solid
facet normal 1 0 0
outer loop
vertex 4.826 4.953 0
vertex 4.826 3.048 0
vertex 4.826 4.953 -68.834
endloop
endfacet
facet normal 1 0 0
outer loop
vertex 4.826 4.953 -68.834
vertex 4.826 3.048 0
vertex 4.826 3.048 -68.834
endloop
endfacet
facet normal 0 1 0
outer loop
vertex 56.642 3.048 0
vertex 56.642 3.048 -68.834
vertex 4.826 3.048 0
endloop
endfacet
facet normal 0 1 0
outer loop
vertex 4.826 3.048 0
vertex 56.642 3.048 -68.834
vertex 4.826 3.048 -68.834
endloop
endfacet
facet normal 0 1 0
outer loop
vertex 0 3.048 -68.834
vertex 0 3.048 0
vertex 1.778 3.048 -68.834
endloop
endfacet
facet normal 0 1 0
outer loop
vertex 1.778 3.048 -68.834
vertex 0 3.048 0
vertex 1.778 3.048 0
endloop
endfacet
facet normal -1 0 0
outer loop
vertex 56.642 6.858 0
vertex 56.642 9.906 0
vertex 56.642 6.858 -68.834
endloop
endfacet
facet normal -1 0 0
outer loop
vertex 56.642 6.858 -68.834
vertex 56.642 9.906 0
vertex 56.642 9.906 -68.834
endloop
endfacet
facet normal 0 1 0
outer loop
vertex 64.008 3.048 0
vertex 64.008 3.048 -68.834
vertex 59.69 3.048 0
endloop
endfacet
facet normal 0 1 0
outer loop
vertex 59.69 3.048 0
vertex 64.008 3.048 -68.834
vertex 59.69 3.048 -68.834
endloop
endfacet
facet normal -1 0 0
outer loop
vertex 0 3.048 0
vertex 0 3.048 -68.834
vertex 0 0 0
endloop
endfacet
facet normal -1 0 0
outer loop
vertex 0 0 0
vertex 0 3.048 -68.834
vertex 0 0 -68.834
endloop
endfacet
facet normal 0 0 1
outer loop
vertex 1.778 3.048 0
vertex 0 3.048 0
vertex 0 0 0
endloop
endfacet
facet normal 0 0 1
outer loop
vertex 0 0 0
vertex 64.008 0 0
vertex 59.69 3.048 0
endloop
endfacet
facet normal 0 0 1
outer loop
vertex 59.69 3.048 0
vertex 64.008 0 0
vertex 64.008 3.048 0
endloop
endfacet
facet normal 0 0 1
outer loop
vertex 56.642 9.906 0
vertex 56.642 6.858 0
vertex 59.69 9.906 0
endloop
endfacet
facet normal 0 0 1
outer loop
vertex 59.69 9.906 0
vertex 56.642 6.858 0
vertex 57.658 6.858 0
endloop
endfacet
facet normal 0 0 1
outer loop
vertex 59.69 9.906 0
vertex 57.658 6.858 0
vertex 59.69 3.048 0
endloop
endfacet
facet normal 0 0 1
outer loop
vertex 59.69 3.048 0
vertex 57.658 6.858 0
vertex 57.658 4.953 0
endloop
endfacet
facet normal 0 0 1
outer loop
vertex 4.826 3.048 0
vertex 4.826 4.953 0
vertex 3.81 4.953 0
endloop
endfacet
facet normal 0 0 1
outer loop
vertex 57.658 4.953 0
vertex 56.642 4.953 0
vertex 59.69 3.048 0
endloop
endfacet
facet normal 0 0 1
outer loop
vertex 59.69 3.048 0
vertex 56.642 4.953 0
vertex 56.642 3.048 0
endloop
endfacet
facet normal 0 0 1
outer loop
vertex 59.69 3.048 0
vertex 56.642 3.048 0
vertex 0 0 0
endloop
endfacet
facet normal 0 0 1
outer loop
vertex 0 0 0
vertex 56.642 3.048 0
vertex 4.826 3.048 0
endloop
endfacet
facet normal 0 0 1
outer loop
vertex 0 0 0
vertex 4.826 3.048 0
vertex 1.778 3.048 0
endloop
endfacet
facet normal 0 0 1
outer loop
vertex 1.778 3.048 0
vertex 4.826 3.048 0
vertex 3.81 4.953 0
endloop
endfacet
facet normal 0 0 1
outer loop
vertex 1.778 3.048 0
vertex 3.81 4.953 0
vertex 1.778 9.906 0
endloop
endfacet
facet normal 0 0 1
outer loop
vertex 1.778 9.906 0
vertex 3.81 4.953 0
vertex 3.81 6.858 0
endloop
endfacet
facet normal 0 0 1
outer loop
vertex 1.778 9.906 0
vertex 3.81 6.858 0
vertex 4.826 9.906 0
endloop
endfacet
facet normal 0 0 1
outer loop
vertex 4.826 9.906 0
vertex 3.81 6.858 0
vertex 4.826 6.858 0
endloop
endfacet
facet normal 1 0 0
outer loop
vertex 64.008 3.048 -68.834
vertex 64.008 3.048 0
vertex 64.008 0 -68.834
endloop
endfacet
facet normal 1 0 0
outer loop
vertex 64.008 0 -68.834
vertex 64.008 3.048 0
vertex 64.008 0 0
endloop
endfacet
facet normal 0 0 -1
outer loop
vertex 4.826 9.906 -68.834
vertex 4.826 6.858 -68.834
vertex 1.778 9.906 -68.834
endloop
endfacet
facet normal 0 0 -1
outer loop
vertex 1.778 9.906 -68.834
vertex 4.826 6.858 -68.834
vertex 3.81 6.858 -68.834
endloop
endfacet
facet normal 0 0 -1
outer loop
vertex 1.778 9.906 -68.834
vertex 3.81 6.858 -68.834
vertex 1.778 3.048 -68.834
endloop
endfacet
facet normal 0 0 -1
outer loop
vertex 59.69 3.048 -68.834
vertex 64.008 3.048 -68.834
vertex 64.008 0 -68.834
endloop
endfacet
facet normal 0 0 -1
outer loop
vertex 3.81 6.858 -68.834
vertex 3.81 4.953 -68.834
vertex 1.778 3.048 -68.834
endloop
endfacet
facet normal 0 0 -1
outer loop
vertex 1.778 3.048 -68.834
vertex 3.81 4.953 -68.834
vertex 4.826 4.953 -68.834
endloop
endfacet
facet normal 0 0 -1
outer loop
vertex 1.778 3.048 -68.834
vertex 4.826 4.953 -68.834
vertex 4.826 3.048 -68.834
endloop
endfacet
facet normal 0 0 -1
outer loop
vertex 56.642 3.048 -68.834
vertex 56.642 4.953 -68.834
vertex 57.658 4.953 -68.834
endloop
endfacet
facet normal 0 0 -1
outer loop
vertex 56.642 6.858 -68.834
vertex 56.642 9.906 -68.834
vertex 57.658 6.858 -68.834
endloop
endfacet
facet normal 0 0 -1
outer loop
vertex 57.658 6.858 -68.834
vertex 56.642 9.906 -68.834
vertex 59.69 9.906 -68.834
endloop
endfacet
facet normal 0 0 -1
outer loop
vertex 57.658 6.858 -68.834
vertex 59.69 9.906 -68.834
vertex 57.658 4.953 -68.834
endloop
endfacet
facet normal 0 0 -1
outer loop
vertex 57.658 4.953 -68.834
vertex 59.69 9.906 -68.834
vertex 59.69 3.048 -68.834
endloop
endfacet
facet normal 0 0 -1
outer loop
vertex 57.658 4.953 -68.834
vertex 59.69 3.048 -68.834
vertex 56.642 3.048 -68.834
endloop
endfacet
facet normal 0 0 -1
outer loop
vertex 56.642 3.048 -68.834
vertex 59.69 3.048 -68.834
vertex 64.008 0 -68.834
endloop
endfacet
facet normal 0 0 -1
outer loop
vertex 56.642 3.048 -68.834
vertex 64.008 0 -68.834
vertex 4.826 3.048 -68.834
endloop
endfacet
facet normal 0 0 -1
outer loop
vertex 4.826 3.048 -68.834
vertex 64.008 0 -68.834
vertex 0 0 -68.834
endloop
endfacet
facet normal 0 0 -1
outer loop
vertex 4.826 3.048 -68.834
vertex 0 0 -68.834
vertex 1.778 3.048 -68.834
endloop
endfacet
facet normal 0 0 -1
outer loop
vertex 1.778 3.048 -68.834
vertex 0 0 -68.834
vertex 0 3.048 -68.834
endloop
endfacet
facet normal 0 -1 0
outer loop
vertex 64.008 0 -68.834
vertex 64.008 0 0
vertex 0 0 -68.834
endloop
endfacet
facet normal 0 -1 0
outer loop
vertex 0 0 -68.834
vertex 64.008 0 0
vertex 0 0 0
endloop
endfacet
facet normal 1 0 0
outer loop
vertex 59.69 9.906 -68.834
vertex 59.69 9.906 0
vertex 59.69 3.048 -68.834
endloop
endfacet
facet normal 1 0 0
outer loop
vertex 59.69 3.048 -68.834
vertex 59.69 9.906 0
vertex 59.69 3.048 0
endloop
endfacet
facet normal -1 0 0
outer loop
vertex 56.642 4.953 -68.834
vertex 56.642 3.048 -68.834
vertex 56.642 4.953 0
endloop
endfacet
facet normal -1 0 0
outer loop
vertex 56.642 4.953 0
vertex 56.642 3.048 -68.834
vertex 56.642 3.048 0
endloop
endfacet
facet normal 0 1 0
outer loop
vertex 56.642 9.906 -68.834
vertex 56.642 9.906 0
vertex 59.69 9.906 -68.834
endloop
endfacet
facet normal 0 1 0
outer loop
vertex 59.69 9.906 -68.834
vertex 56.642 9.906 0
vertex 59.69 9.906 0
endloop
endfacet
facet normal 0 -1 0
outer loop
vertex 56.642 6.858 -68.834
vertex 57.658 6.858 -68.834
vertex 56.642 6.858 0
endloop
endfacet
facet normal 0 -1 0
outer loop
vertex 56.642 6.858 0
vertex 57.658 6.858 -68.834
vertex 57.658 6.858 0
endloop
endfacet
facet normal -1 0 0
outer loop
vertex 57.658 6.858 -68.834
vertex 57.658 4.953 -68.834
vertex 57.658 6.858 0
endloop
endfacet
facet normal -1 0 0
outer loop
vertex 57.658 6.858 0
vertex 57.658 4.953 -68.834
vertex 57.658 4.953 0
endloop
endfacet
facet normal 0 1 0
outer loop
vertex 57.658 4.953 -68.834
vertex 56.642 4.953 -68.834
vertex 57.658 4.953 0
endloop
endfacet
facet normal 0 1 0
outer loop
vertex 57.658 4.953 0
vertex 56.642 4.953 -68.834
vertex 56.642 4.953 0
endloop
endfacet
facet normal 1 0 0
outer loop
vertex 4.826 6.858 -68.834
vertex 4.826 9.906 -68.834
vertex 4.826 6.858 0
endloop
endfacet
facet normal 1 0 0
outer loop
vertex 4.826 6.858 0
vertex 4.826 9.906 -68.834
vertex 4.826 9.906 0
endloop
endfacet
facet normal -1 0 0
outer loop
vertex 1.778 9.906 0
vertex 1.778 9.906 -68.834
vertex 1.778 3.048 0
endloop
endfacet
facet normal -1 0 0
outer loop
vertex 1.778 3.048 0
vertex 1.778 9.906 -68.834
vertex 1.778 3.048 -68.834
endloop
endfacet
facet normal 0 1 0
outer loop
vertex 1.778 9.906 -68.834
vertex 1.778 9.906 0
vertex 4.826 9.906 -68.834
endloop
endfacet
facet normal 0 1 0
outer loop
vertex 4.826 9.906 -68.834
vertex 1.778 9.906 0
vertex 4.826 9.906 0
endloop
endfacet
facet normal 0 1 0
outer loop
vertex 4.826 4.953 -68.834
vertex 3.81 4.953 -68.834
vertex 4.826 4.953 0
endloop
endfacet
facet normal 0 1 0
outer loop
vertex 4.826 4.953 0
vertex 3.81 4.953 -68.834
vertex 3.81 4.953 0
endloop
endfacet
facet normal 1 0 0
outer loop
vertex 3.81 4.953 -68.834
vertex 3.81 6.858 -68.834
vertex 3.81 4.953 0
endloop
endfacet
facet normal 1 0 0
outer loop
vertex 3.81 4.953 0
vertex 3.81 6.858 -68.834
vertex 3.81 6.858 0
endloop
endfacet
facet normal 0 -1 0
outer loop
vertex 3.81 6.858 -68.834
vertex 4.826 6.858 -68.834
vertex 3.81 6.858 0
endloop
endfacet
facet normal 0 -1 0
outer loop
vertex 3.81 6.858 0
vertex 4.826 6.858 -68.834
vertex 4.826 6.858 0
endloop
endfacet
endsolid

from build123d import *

# Parameters (mm, degrees)
SKETCH1_W           = 64.008
SKETCH1_H           = 68.834
BOSS_EXTRUDE1_DEPTH = 3.048
SKETCH2_W           = 3.048
SKETCH2_H           = 68.834
BOSS_EXTRUDE2_DEPTH = 6.858
SKETCH3_W           = 1.016
SKETCH3_H           = 1.905
CUT_EXTRUDE1_DEPTH  = 95.515990478
SKETCH4_W           = 3.048
SKETCH4_H           = 68.834
BOSS_EXTRUDE3_DEPTH = 6.858
SKETCH5_W           = 1.016
SKETCH5_H           = 1.905
CUT_EXTRUDE2_DEPTH  = 95.515990478


with BuildPart() as part:
    # Sketch1 → Boss-Extrude1 (new body)
    with BuildSketch(Plane(origin=(0, 0, 0), x_dir=(1, 0, 0), z_dir=(0, 1, 0))):
        with Locations((32.004, 34.417)):
            Rectangle(SKETCH1_W, SKETCH1_H)
    extrude(amount=BOSS_EXTRUDE1_DEPTH)

    # Sketch2 → Boss-Extrude2 (add)
    with BuildSketch(Plane(origin=(0, 3.048, 0), x_dir=(1, 0, 0), z_dir=(0, 1, 0))):
        with Locations((58.166, 34.417)):
            Rectangle(SKETCH2_W, SKETCH2_H)
    extrude(amount=BOSS_EXTRUDE2_DEPTH)

    # Sketch3 → Cut-Extrude1 (cut, through all)
    with BuildSketch(Plane.XY):
        with Locations((57.15, 5.9055)):
            Rectangle(SKETCH3_W, SKETCH3_H)
    extrude(amount=-CUT_EXTRUDE1_DEPTH, mode=Mode.SUBTRACT)

    # Sketch4 → Boss-Extrude3 (add)
    with BuildSketch(Plane(origin=(0, 3.048, 0), x_dir=(1, 0, 0), z_dir=(0, 1, 0))):
        with Locations((3.302, 34.417)):
            Rectangle(SKETCH4_W, SKETCH4_H)
    extrude(amount=BOSS_EXTRUDE3_DEPTH)

    # Sketch5 → Cut-Extrude2 (cut, through all)
    with BuildSketch(Plane.XY):
        with Locations((4.318, 5.9055)):
            Rectangle(SKETCH5_W, SKETCH5_H)
    extrude(amount=-CUT_EXTRUDE2_DEPTH, mode=Mode.SUBTRACT)


solid = part.part
